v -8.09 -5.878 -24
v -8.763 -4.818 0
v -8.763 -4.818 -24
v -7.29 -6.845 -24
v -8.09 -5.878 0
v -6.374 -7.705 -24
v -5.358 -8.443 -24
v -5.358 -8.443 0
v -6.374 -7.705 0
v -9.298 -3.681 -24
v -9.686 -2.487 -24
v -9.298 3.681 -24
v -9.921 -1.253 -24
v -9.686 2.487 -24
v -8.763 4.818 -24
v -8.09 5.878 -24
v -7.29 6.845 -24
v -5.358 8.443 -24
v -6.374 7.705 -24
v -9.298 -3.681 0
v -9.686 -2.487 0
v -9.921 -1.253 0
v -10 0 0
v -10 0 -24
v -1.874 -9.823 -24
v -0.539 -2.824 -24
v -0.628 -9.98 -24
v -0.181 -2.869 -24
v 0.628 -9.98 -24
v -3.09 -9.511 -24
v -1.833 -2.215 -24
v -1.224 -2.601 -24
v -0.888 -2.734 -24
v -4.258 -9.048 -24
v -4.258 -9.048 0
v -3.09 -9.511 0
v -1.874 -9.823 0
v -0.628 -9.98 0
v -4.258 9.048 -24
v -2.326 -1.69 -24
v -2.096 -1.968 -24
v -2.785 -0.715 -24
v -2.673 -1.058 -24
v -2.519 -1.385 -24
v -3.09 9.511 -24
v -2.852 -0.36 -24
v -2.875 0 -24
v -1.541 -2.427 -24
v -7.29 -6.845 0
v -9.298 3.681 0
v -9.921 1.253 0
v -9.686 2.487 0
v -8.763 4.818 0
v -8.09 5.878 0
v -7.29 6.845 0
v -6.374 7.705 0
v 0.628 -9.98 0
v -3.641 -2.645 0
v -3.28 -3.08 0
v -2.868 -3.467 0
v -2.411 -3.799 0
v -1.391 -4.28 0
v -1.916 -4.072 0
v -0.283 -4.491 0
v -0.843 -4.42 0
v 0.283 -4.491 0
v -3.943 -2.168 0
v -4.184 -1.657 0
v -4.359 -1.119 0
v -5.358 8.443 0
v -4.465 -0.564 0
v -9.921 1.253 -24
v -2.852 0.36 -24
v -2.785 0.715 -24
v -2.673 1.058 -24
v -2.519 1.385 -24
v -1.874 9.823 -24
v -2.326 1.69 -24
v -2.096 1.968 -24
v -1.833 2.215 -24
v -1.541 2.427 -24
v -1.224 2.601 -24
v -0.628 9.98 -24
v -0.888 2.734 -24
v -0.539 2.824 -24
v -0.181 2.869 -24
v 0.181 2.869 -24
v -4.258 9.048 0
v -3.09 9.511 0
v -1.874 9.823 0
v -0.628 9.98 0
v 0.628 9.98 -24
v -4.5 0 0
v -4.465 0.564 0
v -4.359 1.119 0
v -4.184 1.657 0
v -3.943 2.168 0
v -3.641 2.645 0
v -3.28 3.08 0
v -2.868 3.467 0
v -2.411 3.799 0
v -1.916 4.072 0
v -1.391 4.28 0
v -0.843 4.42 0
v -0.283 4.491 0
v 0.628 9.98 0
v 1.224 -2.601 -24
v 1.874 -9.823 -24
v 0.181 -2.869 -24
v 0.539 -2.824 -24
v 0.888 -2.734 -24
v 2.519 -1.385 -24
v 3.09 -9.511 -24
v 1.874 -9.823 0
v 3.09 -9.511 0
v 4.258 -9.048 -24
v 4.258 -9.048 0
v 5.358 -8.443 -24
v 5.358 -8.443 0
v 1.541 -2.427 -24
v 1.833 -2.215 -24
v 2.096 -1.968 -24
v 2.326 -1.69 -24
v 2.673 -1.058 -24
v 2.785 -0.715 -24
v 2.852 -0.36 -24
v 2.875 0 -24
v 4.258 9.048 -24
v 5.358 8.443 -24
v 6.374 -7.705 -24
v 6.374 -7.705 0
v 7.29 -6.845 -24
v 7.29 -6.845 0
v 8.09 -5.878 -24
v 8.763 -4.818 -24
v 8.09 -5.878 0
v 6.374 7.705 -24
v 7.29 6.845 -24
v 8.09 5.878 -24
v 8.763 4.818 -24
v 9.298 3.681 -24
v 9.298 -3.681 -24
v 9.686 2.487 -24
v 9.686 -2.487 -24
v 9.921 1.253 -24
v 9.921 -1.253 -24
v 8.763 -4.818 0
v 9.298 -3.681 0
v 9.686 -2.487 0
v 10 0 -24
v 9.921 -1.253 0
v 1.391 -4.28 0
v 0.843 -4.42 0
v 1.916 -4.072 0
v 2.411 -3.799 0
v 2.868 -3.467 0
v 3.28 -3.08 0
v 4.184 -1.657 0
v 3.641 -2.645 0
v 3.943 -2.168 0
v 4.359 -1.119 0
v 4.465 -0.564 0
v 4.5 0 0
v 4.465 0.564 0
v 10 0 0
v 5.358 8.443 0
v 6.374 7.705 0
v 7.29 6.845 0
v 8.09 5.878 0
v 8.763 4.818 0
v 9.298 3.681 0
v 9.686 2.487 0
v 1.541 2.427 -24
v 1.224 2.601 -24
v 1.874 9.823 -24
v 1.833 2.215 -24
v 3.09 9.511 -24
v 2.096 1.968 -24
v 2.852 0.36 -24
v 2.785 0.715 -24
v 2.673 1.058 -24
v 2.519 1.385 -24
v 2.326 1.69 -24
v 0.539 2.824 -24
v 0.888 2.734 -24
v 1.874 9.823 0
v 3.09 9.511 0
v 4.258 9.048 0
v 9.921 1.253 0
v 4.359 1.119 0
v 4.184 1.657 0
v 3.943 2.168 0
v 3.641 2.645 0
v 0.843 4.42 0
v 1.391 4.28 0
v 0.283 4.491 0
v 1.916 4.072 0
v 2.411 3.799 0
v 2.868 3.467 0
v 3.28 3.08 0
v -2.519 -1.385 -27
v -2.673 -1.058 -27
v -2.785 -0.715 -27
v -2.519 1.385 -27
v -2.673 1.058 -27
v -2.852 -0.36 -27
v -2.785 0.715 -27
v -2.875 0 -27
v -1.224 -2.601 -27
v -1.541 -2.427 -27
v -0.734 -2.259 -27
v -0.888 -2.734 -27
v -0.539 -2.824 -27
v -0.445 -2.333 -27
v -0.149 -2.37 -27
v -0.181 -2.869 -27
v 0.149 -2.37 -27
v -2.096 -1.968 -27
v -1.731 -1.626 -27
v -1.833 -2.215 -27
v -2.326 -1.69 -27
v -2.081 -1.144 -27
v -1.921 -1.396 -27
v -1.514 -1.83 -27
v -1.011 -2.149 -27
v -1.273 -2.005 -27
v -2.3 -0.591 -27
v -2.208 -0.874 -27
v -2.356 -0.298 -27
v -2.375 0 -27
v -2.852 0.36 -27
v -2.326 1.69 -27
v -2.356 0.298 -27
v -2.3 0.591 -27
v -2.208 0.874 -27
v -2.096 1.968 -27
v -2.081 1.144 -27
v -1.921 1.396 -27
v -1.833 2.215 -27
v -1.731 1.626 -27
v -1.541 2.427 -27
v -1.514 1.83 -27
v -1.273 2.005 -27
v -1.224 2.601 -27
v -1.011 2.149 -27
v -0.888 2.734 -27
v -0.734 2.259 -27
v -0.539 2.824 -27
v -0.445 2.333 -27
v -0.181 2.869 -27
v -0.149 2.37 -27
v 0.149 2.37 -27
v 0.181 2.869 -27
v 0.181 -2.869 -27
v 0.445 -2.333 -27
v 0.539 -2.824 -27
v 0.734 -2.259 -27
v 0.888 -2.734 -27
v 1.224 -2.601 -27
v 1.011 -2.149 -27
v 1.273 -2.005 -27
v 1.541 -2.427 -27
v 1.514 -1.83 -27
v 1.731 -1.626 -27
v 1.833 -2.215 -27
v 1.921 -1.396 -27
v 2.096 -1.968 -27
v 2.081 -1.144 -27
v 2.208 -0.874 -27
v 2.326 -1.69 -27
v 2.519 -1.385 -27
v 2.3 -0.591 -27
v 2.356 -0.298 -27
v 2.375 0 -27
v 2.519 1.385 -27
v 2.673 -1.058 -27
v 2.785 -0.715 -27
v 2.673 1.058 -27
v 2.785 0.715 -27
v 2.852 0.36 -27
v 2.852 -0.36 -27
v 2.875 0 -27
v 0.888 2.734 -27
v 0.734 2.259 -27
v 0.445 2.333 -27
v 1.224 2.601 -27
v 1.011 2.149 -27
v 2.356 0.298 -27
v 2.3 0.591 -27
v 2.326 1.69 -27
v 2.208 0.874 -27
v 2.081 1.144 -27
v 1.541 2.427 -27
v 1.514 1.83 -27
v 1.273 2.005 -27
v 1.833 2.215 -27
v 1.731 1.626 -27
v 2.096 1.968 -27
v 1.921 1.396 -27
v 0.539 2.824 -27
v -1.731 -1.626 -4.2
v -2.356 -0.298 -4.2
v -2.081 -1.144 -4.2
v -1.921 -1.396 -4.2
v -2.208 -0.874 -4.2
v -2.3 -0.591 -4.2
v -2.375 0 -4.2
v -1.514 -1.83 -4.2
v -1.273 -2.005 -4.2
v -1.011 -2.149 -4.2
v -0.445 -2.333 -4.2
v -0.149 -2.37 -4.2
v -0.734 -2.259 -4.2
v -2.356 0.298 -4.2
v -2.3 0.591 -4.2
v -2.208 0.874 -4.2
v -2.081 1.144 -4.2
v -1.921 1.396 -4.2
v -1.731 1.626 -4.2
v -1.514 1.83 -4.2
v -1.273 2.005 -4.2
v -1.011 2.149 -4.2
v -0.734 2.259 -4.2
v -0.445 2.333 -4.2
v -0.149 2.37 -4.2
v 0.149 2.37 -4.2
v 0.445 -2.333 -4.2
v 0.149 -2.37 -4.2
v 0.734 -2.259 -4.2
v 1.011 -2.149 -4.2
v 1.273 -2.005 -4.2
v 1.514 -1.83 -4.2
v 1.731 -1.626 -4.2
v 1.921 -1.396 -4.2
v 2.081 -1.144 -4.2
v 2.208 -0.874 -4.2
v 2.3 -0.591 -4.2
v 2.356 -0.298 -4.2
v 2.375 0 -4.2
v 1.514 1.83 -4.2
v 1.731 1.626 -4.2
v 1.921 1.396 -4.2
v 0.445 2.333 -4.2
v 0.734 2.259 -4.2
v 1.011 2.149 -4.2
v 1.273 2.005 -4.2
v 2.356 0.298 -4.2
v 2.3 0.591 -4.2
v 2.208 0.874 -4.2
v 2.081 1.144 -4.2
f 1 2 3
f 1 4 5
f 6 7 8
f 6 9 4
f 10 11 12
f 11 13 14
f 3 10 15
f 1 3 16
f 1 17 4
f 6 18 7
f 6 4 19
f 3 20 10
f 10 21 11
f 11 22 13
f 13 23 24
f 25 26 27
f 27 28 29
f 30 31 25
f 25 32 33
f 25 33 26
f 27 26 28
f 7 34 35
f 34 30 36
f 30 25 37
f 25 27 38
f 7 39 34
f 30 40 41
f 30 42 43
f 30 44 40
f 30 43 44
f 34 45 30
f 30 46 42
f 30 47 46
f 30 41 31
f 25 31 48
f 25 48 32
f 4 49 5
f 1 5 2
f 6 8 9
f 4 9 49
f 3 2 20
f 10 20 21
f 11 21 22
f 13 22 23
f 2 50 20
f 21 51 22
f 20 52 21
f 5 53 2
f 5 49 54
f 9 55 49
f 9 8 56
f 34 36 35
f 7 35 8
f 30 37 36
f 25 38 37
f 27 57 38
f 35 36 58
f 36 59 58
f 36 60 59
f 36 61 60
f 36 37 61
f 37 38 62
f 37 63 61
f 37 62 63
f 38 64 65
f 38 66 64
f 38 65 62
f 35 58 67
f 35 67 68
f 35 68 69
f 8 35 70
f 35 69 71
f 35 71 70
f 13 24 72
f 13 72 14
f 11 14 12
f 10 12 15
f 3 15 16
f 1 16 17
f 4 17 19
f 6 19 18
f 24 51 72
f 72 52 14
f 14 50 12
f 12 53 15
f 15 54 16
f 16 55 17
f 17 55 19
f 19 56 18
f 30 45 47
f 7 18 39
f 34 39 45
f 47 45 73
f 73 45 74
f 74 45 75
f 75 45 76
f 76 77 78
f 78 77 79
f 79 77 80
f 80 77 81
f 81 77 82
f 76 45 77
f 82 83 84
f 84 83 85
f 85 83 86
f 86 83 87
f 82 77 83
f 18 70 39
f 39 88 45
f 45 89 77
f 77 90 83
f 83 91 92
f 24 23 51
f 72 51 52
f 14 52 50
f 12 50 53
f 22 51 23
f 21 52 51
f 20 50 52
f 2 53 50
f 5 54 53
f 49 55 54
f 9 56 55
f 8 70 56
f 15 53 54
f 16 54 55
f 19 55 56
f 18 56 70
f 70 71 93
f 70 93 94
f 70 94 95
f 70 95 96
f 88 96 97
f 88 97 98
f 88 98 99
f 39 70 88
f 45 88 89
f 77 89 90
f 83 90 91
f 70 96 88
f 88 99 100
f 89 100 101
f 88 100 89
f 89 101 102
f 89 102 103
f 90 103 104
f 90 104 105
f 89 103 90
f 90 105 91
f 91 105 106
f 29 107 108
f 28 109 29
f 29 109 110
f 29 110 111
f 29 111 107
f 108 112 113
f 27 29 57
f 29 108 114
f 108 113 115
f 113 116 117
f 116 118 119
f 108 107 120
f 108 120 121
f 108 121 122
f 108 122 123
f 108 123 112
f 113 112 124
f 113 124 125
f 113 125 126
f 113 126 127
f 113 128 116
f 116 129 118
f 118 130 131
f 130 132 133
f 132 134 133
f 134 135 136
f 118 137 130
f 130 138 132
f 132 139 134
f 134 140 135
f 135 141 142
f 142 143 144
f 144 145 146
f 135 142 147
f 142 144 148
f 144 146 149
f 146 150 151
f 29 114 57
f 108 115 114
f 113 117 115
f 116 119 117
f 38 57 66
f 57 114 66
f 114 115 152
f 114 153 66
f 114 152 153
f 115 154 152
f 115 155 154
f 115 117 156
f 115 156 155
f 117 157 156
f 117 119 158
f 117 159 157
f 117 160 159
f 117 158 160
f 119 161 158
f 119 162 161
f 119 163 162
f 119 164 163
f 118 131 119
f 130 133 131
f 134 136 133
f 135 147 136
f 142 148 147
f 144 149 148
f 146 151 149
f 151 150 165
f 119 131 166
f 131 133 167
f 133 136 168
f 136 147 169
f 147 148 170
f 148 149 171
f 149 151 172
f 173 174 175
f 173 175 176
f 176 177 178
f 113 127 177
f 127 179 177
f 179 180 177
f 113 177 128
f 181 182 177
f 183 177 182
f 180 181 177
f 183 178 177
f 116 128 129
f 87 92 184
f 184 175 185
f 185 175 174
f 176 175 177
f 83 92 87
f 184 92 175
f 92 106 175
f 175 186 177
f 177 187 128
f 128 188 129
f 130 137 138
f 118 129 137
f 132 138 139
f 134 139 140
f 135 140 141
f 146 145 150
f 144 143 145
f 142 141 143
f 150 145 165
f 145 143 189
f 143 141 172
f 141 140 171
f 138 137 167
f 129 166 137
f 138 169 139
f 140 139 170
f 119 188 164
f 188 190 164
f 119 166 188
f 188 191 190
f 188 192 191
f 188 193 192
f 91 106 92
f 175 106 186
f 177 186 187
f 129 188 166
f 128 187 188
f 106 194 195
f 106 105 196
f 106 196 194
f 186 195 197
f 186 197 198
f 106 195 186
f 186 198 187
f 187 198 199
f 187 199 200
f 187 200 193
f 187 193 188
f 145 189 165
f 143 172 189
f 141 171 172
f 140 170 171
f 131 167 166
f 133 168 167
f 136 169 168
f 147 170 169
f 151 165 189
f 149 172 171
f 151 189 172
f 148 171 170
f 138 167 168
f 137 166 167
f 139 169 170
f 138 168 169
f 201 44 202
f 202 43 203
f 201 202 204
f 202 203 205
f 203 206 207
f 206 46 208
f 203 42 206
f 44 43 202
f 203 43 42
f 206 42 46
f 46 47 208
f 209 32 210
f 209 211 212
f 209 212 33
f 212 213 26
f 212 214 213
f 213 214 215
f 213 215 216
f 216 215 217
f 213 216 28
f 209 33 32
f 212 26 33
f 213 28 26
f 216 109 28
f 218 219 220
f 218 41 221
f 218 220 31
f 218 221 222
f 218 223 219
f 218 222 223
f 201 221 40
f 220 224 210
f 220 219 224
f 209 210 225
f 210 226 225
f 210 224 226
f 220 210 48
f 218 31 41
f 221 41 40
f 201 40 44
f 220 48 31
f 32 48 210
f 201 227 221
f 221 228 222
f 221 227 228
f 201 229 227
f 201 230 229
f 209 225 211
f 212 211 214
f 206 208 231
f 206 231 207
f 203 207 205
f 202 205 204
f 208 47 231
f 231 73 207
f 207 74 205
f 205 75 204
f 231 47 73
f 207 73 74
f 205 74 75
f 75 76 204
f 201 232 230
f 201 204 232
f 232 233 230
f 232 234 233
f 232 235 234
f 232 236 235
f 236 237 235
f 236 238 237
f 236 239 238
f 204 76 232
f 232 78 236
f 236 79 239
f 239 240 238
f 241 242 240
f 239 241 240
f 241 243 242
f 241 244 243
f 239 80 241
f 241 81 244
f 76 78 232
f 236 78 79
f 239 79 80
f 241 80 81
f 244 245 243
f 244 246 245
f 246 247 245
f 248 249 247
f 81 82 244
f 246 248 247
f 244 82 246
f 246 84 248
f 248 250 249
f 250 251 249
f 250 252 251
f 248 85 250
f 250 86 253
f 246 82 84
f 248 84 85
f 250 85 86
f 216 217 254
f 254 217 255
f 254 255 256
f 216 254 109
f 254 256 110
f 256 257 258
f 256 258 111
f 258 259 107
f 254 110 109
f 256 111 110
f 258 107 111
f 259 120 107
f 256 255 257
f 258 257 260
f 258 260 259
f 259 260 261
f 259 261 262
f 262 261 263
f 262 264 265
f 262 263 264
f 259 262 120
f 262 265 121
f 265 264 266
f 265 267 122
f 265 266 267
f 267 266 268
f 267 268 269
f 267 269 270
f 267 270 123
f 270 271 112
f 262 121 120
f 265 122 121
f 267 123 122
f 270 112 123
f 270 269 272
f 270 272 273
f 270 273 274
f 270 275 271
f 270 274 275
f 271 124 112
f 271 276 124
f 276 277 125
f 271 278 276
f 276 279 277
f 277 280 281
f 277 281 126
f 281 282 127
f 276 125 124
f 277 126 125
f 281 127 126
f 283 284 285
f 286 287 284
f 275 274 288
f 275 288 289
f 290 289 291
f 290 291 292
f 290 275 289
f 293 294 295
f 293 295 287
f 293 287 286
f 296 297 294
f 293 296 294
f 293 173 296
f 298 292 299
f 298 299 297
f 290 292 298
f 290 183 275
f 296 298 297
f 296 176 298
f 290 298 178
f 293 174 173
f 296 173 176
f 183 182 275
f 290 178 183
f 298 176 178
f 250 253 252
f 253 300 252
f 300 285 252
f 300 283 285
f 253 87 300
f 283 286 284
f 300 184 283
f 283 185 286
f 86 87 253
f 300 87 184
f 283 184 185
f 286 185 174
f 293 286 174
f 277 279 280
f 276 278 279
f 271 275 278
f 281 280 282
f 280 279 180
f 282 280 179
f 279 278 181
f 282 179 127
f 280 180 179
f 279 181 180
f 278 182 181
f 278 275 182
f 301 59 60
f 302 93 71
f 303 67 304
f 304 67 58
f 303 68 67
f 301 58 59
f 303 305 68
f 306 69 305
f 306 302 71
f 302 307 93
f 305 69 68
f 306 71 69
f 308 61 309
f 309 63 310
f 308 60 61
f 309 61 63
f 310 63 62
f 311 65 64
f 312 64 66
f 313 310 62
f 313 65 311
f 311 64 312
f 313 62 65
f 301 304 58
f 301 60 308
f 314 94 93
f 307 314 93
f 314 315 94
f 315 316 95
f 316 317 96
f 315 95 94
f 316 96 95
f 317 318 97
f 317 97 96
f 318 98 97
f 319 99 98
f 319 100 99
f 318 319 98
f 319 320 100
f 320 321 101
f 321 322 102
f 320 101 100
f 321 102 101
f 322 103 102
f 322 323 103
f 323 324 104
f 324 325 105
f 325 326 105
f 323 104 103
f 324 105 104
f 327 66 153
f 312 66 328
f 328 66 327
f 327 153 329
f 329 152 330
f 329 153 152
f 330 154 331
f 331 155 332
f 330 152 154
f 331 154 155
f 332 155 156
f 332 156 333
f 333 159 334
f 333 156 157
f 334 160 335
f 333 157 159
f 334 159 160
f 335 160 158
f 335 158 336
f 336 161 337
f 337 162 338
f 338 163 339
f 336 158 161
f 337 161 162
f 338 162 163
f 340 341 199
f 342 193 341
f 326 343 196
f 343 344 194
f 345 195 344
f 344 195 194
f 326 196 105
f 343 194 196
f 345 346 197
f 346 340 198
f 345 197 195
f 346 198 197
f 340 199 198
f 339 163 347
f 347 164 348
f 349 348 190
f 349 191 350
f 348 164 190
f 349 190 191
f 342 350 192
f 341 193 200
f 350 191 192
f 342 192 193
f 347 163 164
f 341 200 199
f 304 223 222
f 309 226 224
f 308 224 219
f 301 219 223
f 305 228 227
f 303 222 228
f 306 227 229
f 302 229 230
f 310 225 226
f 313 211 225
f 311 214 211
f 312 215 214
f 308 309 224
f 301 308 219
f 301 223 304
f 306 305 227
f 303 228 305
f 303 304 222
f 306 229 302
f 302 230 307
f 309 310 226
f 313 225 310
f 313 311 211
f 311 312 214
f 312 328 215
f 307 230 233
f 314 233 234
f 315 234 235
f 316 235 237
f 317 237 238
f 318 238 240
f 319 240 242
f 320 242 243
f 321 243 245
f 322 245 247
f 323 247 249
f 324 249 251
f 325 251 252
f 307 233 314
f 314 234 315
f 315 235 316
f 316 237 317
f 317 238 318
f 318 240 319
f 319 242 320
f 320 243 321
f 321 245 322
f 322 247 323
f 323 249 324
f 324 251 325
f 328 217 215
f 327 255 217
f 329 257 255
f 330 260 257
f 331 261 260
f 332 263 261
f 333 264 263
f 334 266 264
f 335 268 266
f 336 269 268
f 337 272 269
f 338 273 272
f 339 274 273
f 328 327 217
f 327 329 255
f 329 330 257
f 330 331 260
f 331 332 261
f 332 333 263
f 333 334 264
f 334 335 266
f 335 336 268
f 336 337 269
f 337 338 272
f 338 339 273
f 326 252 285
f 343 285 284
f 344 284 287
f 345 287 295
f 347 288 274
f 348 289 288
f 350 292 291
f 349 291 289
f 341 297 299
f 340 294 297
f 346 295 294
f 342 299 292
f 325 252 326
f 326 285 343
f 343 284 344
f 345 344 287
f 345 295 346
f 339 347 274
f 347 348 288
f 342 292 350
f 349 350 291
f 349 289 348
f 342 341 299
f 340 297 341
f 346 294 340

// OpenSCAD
$fn = 50;

difference() {
	union() {
		translate(v = [0, 0, -24.0]) {
			cylinder(h = 24, r = 10.0);
		}
		#translate(v = [0, 0, -27.0]) {
			cylinder(h = 27, r = 2.875);
		}
	}
	union() {
		translate(v = [0, 0, 0]) {
			rotate(a = [0, 0, 0]) {
				difference() {
					union() {
						translate(v = [0, 0, -27.0]) {
							cylinder(h = 27, r = 2.25);
						}
						translate(v = [0, 0, -4.2]) {
							cylinder(h = 4.2, r1 = 2.375, r2 = 4.5);
						}
						translate(v = [0, 0, -27.0]) {
							cylinder(h = 27, r = 2.375);
						}
						translate(v = [0, 0, -27.0]) {
							cylinder(h = 27, r = 2.25);
						}
					}
					union();
				}
			}
		}
	}
}
